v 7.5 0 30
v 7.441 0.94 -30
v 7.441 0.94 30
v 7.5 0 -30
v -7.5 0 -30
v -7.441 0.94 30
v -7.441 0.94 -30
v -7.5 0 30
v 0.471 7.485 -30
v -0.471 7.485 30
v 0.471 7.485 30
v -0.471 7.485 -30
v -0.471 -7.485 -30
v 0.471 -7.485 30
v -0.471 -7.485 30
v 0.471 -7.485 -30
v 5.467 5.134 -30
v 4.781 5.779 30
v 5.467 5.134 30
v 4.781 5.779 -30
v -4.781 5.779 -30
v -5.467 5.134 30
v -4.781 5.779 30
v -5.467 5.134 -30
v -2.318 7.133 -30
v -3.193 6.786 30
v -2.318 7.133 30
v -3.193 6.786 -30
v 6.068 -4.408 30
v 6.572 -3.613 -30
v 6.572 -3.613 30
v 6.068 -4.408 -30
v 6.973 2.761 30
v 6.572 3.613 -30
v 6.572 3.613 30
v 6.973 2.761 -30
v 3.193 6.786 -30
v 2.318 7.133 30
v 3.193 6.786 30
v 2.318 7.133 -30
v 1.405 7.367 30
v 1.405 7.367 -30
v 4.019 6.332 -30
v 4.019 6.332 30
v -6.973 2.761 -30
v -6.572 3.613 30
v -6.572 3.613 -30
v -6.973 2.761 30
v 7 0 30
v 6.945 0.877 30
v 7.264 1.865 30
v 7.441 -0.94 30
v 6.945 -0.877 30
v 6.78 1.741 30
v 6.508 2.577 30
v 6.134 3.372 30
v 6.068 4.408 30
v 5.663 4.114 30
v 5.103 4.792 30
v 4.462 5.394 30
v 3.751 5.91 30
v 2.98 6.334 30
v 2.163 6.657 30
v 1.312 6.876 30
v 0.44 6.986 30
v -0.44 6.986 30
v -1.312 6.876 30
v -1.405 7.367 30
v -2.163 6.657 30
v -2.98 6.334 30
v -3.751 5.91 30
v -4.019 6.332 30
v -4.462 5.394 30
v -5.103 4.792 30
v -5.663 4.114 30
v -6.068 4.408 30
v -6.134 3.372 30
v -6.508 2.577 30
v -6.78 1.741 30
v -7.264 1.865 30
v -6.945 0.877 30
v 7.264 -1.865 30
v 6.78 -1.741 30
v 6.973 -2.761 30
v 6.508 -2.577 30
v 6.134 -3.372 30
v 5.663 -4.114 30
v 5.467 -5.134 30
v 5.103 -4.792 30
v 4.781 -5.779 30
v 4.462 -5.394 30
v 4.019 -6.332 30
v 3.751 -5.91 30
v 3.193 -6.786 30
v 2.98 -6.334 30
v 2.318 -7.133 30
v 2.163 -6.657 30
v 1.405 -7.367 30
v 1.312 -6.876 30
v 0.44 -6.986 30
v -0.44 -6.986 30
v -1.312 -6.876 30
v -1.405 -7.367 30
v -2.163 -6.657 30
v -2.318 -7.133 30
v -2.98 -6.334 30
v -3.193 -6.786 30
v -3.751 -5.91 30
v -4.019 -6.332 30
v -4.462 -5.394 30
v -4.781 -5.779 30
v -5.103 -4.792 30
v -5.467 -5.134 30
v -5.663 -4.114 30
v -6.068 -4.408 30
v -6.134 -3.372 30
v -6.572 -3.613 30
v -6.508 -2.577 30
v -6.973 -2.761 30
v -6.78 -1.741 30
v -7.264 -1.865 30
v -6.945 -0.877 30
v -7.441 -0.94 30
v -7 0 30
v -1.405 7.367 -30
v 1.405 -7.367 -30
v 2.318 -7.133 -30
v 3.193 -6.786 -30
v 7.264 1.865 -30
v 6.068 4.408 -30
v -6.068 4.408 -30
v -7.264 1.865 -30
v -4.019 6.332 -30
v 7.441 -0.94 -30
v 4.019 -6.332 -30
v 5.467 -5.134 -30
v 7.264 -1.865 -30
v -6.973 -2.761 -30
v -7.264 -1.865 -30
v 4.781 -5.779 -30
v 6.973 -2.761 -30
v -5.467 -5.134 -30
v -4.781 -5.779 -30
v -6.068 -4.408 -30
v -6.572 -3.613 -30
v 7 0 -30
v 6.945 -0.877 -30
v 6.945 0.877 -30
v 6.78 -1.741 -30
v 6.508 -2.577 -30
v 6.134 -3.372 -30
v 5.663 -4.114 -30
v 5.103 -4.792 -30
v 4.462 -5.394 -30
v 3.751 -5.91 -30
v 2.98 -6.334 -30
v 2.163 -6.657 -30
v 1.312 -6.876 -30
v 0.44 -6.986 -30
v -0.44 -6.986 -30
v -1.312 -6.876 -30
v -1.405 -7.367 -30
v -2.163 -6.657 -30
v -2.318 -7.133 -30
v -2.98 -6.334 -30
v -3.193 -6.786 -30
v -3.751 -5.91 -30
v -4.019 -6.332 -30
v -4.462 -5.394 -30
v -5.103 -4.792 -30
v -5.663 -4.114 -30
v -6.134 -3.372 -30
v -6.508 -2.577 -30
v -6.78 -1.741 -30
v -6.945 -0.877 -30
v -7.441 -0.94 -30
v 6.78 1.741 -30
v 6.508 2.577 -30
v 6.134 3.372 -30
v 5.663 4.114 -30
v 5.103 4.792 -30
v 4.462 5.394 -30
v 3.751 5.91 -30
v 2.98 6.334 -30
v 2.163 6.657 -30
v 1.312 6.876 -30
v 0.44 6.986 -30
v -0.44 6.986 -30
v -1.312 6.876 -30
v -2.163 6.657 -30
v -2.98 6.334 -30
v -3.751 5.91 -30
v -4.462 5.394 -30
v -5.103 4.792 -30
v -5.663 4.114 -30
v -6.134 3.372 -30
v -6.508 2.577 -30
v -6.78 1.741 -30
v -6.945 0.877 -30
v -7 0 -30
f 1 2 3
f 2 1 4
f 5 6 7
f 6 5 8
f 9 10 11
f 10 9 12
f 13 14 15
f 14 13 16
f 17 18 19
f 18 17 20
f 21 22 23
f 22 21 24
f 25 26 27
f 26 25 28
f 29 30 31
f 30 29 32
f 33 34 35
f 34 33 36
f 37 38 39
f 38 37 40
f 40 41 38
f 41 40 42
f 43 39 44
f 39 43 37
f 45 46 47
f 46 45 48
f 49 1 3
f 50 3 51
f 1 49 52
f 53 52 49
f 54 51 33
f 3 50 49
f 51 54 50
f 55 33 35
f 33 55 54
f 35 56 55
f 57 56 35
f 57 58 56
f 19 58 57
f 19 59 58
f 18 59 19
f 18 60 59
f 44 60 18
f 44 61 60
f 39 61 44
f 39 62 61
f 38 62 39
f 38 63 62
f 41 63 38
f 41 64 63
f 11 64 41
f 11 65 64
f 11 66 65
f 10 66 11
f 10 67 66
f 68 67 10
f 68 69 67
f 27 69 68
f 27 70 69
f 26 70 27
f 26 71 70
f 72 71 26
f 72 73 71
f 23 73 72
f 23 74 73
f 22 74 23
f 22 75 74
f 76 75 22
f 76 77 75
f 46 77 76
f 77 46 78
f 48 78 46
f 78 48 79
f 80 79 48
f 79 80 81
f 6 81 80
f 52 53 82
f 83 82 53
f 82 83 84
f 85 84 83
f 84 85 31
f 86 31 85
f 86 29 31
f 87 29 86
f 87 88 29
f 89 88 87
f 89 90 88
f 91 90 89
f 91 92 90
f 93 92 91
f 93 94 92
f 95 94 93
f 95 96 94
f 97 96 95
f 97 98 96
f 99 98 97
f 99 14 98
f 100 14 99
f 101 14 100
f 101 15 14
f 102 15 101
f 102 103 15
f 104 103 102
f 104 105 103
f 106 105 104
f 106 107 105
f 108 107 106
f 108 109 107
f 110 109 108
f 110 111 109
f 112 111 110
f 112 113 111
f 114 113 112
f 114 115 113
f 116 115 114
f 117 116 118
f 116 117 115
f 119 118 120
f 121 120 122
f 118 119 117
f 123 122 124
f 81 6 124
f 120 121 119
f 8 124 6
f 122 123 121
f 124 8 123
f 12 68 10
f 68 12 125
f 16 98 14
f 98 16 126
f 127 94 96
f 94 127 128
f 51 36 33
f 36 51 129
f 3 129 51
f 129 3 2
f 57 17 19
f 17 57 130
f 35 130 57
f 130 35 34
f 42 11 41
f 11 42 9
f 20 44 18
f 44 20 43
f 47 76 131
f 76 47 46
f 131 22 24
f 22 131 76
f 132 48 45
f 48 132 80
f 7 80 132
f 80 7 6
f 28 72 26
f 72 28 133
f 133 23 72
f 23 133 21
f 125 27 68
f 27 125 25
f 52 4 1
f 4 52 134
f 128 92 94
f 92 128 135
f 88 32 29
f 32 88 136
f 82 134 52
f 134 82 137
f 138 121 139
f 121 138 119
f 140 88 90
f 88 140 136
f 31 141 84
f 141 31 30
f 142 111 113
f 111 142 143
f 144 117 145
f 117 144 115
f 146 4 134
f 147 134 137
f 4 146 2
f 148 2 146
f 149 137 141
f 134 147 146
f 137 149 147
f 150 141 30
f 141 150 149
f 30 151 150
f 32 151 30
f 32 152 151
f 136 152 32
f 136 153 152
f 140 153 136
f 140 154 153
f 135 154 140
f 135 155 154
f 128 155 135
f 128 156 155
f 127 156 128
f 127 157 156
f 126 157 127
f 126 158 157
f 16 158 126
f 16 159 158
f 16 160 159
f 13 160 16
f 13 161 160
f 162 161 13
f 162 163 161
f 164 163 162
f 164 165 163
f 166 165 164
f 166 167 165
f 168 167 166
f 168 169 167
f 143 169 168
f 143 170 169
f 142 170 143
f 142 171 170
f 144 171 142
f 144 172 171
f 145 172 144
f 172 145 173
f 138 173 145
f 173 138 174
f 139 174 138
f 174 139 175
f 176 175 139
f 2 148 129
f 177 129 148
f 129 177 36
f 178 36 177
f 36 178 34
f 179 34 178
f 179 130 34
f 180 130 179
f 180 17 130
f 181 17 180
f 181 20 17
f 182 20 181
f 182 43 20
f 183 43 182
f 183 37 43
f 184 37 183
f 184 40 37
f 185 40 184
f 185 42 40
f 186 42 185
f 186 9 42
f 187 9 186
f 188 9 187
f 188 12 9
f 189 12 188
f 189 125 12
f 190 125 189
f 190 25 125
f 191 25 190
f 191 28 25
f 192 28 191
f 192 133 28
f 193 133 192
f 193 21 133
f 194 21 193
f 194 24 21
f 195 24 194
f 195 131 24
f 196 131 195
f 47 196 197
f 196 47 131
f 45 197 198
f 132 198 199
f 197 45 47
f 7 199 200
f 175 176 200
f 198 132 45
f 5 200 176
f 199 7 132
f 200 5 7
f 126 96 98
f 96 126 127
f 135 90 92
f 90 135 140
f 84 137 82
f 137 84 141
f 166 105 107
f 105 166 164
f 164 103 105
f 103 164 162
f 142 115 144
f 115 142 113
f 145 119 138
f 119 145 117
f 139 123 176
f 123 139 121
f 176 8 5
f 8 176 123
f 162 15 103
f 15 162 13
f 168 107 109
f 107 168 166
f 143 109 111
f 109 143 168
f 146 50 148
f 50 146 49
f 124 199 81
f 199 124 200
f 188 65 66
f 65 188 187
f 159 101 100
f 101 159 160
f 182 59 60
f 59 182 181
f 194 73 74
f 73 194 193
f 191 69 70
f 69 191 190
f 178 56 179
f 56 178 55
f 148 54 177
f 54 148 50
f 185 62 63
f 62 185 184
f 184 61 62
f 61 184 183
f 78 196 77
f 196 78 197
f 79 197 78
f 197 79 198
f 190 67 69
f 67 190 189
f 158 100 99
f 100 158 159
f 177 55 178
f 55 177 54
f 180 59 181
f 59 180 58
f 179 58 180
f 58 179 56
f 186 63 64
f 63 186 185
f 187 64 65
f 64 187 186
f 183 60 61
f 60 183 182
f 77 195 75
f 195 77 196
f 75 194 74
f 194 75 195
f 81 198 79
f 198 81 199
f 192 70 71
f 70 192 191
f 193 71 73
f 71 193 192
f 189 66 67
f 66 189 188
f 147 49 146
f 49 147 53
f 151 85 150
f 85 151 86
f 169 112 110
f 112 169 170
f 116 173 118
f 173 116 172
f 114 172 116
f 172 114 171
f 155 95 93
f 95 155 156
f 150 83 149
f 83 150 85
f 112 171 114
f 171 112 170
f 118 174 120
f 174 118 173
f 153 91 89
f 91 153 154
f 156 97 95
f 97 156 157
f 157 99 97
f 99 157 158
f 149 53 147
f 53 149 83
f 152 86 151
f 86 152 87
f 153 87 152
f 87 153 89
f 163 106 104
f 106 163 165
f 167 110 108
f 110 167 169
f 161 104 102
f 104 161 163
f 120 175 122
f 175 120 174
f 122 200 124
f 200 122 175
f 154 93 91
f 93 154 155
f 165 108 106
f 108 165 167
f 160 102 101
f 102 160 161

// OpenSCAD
$fn = 50;


difference() {
	union() {
		translate(v = [0, 0, -30.0000000000]) {
			cylinder(h = 60, r = 7.5000000000);
		}
	}
	union() {
		translate(v = [0, 0, -100.0000000000]) {
			cylinder(h = 200, r = 7);
		}
	}
}
